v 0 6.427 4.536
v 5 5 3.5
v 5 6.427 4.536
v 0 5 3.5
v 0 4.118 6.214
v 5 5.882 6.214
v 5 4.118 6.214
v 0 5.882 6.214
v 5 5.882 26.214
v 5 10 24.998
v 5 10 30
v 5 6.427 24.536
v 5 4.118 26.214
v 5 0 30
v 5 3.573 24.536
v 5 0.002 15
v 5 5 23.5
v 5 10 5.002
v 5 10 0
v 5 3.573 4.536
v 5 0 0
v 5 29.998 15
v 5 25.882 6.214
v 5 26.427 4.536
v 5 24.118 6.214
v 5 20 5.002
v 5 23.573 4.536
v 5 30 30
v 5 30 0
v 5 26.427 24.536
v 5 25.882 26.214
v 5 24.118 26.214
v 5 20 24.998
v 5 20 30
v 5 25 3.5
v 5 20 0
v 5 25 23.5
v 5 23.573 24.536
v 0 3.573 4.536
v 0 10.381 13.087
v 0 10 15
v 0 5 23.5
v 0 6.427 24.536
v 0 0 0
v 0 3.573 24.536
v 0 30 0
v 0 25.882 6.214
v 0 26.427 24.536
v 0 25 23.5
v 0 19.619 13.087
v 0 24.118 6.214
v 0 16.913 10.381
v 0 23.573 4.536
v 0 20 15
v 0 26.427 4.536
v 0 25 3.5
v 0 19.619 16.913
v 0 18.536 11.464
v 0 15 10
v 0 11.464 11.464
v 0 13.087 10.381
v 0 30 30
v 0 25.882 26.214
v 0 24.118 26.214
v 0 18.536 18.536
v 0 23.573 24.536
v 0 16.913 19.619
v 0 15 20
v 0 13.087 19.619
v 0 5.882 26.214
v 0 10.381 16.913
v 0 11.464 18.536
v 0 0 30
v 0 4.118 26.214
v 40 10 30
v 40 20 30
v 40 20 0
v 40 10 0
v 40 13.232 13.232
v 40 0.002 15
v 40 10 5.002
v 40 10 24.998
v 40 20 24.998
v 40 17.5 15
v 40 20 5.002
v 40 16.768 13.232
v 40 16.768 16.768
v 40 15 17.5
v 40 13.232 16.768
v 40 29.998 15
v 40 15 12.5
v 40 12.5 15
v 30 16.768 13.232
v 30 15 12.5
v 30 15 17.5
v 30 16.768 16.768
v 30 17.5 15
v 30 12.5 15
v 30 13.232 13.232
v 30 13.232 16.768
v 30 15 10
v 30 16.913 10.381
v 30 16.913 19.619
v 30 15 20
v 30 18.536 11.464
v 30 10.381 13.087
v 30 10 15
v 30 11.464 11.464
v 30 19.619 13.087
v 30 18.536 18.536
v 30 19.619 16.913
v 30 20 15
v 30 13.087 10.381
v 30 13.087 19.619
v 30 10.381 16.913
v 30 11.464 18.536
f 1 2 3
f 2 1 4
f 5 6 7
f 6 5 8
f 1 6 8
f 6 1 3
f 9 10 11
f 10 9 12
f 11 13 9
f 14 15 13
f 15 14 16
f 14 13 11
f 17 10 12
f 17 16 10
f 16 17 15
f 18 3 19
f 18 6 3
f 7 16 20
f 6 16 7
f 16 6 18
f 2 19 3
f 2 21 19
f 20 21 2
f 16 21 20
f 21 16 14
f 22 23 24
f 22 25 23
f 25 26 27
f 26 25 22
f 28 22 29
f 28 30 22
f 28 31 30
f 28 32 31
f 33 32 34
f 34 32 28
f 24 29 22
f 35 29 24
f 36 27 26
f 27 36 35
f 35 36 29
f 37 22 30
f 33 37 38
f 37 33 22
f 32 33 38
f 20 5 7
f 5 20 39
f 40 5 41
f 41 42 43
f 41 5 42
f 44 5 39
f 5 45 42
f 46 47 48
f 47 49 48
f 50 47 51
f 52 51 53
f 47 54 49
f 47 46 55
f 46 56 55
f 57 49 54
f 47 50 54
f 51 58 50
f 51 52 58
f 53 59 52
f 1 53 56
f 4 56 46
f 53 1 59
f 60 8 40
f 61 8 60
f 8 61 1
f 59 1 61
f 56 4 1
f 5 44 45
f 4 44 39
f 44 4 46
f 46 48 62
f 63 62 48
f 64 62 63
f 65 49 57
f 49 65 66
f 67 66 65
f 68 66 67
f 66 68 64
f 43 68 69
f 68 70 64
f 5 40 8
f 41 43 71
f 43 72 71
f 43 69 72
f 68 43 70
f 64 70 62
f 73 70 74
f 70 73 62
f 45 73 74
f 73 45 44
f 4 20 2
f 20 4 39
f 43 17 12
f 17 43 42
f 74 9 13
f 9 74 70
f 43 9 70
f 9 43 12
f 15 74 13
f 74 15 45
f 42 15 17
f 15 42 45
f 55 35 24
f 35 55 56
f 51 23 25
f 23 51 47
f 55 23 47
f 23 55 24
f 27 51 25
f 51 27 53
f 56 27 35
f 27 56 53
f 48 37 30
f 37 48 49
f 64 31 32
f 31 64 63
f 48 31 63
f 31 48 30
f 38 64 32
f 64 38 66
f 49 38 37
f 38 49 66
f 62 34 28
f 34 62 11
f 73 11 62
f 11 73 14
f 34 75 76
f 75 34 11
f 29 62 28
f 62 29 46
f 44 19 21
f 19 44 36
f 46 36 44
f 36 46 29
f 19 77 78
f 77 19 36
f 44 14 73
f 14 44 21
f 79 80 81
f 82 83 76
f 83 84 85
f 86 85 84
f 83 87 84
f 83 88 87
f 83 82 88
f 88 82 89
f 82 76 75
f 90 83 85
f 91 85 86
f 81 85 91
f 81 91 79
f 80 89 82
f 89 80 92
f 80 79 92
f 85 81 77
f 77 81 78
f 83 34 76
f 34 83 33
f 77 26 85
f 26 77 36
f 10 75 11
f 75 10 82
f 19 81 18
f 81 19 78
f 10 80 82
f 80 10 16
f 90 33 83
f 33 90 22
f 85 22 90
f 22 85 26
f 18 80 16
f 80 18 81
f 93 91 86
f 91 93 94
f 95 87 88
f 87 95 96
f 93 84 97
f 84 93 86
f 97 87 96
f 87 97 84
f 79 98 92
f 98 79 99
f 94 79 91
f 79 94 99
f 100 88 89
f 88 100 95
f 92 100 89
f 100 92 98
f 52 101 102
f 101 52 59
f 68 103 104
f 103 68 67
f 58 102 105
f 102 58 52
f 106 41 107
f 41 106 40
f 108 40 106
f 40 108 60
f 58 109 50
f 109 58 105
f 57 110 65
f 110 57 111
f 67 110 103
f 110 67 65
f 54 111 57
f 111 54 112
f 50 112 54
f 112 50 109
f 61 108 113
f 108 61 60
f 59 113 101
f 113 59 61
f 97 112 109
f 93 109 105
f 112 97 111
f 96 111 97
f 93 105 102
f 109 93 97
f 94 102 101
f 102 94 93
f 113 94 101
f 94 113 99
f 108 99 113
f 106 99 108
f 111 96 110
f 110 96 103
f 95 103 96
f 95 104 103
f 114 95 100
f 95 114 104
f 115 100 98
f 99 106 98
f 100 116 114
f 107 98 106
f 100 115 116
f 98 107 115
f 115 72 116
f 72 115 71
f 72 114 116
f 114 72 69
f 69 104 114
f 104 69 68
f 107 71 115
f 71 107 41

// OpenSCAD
module main() {
	difference() {
		union() {
			cube([5, 30, 30]);
			translate([0, 10, 0])
				cube([40, 10, 30]);
			translate([0, 15, 15])
				rotate([45, 0, 0])
					translate([0, -21.21/2, -21.21/2])
						cube([40, 21.21, 21.21]);
		}

		translate([0, 15, 15])
			rotate([0, 90, 0])
				cylinder(d=5, h = 40);
		translate([0, 15, 15])
			rotate([0, 90, 0])
				cylinder(d=10, h = 30);
		for(y = [5, 25])
			for(z = [5, 25])
				translate([0, y, z])
					rotate([0, 90, 0])
						cylinder(d = 3, h = 5);
	}
}

main();
